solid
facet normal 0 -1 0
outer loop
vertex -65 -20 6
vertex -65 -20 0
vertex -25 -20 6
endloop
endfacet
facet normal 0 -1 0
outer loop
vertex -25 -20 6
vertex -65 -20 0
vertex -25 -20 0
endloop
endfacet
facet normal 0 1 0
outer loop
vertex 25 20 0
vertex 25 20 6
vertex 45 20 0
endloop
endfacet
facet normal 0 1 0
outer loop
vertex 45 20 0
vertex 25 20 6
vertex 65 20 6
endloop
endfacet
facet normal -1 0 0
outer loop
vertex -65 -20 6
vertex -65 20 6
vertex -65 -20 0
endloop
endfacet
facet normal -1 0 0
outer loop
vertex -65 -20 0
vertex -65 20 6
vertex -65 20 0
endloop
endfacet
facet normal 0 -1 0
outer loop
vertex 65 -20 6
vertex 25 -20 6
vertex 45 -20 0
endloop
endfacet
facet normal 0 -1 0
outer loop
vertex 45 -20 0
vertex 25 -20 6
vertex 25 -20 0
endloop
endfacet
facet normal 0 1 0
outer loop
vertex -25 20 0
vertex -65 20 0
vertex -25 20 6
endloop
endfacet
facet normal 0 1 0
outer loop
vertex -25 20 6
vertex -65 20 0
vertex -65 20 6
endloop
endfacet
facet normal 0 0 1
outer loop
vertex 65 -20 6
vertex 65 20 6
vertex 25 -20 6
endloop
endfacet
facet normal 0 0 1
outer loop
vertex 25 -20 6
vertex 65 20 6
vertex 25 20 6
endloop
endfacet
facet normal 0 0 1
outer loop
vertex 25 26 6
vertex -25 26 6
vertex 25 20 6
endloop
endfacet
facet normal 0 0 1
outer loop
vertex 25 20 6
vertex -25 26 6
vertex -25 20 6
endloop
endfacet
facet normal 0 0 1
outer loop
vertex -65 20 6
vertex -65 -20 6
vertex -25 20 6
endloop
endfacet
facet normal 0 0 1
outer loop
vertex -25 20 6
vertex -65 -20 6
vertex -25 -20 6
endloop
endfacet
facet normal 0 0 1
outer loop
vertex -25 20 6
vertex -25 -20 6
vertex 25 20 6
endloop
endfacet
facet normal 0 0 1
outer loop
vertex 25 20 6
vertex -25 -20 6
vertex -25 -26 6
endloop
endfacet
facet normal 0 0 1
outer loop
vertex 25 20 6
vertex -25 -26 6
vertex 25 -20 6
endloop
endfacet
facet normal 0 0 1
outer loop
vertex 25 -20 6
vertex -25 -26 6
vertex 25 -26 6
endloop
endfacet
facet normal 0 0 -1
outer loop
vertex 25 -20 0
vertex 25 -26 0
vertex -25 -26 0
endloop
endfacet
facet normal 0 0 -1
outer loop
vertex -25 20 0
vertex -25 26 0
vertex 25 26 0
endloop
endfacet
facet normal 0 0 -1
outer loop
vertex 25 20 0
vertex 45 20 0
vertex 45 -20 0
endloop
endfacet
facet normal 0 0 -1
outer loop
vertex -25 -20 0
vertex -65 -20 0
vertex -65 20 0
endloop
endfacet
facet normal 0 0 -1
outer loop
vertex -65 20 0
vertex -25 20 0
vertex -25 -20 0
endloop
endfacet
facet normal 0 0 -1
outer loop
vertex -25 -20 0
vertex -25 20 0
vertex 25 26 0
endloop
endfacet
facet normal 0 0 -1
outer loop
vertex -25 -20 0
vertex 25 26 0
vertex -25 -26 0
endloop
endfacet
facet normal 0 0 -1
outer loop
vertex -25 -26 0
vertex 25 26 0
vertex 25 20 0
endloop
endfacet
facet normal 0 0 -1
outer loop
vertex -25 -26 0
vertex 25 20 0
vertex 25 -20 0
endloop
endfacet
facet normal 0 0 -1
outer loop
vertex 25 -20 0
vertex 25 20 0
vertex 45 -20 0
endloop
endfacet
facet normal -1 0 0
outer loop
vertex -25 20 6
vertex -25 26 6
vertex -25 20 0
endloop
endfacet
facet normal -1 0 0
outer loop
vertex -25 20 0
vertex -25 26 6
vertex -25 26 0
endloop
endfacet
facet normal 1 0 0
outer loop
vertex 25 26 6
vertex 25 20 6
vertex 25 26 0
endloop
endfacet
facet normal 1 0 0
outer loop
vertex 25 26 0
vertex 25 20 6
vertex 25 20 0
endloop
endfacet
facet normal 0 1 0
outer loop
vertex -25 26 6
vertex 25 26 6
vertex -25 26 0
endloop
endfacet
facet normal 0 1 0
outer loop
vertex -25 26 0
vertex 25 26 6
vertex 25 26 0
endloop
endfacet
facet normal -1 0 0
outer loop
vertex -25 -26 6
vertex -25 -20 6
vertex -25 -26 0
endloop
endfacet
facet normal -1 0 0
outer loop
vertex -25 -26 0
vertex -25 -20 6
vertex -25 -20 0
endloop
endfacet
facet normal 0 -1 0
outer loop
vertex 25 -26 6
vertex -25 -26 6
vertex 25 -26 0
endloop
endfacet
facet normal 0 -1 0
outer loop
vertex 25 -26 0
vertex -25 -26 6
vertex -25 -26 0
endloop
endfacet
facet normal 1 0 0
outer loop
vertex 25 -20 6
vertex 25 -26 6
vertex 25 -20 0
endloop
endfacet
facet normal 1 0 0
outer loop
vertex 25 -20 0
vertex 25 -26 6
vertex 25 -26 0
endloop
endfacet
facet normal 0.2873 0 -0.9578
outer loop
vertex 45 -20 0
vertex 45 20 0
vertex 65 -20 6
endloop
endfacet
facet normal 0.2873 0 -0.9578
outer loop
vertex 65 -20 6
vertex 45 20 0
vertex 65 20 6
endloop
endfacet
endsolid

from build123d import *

# Parameters (mm, degrees)
ESQUISSE1_W             = 130
ESQUISSE1_H             = 40
BOSS_EXTRU_1_DEPTH      = 6
ESQUISSE5_W             = 50
ESQUISSE5_H             = 6
BOSS_EXTRU_3_DEPTH      = 6
ENL_V_MAT_EXTRU_1_DEPTH = 47


with BuildPart() as part:
    # Esquisse1 → Boss.-Extru.1 (new body)
    with BuildSketch(Plane.XY):
        Rectangle(ESQUISSE1_W, ESQUISSE1_H)
    extrude(amount=BOSS_EXTRU_1_DEPTH)

    # Esquisse5 → Boss.-Extru.3 (add)
    with BuildSketch(Plane(origin=(0, 0, 0), x_dir=(-1, 0, 0), z_dir=(0, 0, -1))):
        with Locations((0, 23)):
            Rectangle(ESQUISSE5_W, ESQUISSE5_H)
        with Locations((0, -23)):
            Rectangle(ESQUISSE5_W, ESQUISSE5_H)
    extrude(amount=-BOSS_EXTRU_3_DEPTH)

    # Esquisse6 → Enlèv. mat.-Extru.1 (cut, through all)
    with BuildSketch(Plane.XZ.offset(20)):
        Polygon((65, 6), (45, 0), (65, 0), align=None)
    extrude(amount=-ENL_V_MAT_EXTRU_1_DEPTH, mode=Mode.SUBTRACT)


solid = part.part
